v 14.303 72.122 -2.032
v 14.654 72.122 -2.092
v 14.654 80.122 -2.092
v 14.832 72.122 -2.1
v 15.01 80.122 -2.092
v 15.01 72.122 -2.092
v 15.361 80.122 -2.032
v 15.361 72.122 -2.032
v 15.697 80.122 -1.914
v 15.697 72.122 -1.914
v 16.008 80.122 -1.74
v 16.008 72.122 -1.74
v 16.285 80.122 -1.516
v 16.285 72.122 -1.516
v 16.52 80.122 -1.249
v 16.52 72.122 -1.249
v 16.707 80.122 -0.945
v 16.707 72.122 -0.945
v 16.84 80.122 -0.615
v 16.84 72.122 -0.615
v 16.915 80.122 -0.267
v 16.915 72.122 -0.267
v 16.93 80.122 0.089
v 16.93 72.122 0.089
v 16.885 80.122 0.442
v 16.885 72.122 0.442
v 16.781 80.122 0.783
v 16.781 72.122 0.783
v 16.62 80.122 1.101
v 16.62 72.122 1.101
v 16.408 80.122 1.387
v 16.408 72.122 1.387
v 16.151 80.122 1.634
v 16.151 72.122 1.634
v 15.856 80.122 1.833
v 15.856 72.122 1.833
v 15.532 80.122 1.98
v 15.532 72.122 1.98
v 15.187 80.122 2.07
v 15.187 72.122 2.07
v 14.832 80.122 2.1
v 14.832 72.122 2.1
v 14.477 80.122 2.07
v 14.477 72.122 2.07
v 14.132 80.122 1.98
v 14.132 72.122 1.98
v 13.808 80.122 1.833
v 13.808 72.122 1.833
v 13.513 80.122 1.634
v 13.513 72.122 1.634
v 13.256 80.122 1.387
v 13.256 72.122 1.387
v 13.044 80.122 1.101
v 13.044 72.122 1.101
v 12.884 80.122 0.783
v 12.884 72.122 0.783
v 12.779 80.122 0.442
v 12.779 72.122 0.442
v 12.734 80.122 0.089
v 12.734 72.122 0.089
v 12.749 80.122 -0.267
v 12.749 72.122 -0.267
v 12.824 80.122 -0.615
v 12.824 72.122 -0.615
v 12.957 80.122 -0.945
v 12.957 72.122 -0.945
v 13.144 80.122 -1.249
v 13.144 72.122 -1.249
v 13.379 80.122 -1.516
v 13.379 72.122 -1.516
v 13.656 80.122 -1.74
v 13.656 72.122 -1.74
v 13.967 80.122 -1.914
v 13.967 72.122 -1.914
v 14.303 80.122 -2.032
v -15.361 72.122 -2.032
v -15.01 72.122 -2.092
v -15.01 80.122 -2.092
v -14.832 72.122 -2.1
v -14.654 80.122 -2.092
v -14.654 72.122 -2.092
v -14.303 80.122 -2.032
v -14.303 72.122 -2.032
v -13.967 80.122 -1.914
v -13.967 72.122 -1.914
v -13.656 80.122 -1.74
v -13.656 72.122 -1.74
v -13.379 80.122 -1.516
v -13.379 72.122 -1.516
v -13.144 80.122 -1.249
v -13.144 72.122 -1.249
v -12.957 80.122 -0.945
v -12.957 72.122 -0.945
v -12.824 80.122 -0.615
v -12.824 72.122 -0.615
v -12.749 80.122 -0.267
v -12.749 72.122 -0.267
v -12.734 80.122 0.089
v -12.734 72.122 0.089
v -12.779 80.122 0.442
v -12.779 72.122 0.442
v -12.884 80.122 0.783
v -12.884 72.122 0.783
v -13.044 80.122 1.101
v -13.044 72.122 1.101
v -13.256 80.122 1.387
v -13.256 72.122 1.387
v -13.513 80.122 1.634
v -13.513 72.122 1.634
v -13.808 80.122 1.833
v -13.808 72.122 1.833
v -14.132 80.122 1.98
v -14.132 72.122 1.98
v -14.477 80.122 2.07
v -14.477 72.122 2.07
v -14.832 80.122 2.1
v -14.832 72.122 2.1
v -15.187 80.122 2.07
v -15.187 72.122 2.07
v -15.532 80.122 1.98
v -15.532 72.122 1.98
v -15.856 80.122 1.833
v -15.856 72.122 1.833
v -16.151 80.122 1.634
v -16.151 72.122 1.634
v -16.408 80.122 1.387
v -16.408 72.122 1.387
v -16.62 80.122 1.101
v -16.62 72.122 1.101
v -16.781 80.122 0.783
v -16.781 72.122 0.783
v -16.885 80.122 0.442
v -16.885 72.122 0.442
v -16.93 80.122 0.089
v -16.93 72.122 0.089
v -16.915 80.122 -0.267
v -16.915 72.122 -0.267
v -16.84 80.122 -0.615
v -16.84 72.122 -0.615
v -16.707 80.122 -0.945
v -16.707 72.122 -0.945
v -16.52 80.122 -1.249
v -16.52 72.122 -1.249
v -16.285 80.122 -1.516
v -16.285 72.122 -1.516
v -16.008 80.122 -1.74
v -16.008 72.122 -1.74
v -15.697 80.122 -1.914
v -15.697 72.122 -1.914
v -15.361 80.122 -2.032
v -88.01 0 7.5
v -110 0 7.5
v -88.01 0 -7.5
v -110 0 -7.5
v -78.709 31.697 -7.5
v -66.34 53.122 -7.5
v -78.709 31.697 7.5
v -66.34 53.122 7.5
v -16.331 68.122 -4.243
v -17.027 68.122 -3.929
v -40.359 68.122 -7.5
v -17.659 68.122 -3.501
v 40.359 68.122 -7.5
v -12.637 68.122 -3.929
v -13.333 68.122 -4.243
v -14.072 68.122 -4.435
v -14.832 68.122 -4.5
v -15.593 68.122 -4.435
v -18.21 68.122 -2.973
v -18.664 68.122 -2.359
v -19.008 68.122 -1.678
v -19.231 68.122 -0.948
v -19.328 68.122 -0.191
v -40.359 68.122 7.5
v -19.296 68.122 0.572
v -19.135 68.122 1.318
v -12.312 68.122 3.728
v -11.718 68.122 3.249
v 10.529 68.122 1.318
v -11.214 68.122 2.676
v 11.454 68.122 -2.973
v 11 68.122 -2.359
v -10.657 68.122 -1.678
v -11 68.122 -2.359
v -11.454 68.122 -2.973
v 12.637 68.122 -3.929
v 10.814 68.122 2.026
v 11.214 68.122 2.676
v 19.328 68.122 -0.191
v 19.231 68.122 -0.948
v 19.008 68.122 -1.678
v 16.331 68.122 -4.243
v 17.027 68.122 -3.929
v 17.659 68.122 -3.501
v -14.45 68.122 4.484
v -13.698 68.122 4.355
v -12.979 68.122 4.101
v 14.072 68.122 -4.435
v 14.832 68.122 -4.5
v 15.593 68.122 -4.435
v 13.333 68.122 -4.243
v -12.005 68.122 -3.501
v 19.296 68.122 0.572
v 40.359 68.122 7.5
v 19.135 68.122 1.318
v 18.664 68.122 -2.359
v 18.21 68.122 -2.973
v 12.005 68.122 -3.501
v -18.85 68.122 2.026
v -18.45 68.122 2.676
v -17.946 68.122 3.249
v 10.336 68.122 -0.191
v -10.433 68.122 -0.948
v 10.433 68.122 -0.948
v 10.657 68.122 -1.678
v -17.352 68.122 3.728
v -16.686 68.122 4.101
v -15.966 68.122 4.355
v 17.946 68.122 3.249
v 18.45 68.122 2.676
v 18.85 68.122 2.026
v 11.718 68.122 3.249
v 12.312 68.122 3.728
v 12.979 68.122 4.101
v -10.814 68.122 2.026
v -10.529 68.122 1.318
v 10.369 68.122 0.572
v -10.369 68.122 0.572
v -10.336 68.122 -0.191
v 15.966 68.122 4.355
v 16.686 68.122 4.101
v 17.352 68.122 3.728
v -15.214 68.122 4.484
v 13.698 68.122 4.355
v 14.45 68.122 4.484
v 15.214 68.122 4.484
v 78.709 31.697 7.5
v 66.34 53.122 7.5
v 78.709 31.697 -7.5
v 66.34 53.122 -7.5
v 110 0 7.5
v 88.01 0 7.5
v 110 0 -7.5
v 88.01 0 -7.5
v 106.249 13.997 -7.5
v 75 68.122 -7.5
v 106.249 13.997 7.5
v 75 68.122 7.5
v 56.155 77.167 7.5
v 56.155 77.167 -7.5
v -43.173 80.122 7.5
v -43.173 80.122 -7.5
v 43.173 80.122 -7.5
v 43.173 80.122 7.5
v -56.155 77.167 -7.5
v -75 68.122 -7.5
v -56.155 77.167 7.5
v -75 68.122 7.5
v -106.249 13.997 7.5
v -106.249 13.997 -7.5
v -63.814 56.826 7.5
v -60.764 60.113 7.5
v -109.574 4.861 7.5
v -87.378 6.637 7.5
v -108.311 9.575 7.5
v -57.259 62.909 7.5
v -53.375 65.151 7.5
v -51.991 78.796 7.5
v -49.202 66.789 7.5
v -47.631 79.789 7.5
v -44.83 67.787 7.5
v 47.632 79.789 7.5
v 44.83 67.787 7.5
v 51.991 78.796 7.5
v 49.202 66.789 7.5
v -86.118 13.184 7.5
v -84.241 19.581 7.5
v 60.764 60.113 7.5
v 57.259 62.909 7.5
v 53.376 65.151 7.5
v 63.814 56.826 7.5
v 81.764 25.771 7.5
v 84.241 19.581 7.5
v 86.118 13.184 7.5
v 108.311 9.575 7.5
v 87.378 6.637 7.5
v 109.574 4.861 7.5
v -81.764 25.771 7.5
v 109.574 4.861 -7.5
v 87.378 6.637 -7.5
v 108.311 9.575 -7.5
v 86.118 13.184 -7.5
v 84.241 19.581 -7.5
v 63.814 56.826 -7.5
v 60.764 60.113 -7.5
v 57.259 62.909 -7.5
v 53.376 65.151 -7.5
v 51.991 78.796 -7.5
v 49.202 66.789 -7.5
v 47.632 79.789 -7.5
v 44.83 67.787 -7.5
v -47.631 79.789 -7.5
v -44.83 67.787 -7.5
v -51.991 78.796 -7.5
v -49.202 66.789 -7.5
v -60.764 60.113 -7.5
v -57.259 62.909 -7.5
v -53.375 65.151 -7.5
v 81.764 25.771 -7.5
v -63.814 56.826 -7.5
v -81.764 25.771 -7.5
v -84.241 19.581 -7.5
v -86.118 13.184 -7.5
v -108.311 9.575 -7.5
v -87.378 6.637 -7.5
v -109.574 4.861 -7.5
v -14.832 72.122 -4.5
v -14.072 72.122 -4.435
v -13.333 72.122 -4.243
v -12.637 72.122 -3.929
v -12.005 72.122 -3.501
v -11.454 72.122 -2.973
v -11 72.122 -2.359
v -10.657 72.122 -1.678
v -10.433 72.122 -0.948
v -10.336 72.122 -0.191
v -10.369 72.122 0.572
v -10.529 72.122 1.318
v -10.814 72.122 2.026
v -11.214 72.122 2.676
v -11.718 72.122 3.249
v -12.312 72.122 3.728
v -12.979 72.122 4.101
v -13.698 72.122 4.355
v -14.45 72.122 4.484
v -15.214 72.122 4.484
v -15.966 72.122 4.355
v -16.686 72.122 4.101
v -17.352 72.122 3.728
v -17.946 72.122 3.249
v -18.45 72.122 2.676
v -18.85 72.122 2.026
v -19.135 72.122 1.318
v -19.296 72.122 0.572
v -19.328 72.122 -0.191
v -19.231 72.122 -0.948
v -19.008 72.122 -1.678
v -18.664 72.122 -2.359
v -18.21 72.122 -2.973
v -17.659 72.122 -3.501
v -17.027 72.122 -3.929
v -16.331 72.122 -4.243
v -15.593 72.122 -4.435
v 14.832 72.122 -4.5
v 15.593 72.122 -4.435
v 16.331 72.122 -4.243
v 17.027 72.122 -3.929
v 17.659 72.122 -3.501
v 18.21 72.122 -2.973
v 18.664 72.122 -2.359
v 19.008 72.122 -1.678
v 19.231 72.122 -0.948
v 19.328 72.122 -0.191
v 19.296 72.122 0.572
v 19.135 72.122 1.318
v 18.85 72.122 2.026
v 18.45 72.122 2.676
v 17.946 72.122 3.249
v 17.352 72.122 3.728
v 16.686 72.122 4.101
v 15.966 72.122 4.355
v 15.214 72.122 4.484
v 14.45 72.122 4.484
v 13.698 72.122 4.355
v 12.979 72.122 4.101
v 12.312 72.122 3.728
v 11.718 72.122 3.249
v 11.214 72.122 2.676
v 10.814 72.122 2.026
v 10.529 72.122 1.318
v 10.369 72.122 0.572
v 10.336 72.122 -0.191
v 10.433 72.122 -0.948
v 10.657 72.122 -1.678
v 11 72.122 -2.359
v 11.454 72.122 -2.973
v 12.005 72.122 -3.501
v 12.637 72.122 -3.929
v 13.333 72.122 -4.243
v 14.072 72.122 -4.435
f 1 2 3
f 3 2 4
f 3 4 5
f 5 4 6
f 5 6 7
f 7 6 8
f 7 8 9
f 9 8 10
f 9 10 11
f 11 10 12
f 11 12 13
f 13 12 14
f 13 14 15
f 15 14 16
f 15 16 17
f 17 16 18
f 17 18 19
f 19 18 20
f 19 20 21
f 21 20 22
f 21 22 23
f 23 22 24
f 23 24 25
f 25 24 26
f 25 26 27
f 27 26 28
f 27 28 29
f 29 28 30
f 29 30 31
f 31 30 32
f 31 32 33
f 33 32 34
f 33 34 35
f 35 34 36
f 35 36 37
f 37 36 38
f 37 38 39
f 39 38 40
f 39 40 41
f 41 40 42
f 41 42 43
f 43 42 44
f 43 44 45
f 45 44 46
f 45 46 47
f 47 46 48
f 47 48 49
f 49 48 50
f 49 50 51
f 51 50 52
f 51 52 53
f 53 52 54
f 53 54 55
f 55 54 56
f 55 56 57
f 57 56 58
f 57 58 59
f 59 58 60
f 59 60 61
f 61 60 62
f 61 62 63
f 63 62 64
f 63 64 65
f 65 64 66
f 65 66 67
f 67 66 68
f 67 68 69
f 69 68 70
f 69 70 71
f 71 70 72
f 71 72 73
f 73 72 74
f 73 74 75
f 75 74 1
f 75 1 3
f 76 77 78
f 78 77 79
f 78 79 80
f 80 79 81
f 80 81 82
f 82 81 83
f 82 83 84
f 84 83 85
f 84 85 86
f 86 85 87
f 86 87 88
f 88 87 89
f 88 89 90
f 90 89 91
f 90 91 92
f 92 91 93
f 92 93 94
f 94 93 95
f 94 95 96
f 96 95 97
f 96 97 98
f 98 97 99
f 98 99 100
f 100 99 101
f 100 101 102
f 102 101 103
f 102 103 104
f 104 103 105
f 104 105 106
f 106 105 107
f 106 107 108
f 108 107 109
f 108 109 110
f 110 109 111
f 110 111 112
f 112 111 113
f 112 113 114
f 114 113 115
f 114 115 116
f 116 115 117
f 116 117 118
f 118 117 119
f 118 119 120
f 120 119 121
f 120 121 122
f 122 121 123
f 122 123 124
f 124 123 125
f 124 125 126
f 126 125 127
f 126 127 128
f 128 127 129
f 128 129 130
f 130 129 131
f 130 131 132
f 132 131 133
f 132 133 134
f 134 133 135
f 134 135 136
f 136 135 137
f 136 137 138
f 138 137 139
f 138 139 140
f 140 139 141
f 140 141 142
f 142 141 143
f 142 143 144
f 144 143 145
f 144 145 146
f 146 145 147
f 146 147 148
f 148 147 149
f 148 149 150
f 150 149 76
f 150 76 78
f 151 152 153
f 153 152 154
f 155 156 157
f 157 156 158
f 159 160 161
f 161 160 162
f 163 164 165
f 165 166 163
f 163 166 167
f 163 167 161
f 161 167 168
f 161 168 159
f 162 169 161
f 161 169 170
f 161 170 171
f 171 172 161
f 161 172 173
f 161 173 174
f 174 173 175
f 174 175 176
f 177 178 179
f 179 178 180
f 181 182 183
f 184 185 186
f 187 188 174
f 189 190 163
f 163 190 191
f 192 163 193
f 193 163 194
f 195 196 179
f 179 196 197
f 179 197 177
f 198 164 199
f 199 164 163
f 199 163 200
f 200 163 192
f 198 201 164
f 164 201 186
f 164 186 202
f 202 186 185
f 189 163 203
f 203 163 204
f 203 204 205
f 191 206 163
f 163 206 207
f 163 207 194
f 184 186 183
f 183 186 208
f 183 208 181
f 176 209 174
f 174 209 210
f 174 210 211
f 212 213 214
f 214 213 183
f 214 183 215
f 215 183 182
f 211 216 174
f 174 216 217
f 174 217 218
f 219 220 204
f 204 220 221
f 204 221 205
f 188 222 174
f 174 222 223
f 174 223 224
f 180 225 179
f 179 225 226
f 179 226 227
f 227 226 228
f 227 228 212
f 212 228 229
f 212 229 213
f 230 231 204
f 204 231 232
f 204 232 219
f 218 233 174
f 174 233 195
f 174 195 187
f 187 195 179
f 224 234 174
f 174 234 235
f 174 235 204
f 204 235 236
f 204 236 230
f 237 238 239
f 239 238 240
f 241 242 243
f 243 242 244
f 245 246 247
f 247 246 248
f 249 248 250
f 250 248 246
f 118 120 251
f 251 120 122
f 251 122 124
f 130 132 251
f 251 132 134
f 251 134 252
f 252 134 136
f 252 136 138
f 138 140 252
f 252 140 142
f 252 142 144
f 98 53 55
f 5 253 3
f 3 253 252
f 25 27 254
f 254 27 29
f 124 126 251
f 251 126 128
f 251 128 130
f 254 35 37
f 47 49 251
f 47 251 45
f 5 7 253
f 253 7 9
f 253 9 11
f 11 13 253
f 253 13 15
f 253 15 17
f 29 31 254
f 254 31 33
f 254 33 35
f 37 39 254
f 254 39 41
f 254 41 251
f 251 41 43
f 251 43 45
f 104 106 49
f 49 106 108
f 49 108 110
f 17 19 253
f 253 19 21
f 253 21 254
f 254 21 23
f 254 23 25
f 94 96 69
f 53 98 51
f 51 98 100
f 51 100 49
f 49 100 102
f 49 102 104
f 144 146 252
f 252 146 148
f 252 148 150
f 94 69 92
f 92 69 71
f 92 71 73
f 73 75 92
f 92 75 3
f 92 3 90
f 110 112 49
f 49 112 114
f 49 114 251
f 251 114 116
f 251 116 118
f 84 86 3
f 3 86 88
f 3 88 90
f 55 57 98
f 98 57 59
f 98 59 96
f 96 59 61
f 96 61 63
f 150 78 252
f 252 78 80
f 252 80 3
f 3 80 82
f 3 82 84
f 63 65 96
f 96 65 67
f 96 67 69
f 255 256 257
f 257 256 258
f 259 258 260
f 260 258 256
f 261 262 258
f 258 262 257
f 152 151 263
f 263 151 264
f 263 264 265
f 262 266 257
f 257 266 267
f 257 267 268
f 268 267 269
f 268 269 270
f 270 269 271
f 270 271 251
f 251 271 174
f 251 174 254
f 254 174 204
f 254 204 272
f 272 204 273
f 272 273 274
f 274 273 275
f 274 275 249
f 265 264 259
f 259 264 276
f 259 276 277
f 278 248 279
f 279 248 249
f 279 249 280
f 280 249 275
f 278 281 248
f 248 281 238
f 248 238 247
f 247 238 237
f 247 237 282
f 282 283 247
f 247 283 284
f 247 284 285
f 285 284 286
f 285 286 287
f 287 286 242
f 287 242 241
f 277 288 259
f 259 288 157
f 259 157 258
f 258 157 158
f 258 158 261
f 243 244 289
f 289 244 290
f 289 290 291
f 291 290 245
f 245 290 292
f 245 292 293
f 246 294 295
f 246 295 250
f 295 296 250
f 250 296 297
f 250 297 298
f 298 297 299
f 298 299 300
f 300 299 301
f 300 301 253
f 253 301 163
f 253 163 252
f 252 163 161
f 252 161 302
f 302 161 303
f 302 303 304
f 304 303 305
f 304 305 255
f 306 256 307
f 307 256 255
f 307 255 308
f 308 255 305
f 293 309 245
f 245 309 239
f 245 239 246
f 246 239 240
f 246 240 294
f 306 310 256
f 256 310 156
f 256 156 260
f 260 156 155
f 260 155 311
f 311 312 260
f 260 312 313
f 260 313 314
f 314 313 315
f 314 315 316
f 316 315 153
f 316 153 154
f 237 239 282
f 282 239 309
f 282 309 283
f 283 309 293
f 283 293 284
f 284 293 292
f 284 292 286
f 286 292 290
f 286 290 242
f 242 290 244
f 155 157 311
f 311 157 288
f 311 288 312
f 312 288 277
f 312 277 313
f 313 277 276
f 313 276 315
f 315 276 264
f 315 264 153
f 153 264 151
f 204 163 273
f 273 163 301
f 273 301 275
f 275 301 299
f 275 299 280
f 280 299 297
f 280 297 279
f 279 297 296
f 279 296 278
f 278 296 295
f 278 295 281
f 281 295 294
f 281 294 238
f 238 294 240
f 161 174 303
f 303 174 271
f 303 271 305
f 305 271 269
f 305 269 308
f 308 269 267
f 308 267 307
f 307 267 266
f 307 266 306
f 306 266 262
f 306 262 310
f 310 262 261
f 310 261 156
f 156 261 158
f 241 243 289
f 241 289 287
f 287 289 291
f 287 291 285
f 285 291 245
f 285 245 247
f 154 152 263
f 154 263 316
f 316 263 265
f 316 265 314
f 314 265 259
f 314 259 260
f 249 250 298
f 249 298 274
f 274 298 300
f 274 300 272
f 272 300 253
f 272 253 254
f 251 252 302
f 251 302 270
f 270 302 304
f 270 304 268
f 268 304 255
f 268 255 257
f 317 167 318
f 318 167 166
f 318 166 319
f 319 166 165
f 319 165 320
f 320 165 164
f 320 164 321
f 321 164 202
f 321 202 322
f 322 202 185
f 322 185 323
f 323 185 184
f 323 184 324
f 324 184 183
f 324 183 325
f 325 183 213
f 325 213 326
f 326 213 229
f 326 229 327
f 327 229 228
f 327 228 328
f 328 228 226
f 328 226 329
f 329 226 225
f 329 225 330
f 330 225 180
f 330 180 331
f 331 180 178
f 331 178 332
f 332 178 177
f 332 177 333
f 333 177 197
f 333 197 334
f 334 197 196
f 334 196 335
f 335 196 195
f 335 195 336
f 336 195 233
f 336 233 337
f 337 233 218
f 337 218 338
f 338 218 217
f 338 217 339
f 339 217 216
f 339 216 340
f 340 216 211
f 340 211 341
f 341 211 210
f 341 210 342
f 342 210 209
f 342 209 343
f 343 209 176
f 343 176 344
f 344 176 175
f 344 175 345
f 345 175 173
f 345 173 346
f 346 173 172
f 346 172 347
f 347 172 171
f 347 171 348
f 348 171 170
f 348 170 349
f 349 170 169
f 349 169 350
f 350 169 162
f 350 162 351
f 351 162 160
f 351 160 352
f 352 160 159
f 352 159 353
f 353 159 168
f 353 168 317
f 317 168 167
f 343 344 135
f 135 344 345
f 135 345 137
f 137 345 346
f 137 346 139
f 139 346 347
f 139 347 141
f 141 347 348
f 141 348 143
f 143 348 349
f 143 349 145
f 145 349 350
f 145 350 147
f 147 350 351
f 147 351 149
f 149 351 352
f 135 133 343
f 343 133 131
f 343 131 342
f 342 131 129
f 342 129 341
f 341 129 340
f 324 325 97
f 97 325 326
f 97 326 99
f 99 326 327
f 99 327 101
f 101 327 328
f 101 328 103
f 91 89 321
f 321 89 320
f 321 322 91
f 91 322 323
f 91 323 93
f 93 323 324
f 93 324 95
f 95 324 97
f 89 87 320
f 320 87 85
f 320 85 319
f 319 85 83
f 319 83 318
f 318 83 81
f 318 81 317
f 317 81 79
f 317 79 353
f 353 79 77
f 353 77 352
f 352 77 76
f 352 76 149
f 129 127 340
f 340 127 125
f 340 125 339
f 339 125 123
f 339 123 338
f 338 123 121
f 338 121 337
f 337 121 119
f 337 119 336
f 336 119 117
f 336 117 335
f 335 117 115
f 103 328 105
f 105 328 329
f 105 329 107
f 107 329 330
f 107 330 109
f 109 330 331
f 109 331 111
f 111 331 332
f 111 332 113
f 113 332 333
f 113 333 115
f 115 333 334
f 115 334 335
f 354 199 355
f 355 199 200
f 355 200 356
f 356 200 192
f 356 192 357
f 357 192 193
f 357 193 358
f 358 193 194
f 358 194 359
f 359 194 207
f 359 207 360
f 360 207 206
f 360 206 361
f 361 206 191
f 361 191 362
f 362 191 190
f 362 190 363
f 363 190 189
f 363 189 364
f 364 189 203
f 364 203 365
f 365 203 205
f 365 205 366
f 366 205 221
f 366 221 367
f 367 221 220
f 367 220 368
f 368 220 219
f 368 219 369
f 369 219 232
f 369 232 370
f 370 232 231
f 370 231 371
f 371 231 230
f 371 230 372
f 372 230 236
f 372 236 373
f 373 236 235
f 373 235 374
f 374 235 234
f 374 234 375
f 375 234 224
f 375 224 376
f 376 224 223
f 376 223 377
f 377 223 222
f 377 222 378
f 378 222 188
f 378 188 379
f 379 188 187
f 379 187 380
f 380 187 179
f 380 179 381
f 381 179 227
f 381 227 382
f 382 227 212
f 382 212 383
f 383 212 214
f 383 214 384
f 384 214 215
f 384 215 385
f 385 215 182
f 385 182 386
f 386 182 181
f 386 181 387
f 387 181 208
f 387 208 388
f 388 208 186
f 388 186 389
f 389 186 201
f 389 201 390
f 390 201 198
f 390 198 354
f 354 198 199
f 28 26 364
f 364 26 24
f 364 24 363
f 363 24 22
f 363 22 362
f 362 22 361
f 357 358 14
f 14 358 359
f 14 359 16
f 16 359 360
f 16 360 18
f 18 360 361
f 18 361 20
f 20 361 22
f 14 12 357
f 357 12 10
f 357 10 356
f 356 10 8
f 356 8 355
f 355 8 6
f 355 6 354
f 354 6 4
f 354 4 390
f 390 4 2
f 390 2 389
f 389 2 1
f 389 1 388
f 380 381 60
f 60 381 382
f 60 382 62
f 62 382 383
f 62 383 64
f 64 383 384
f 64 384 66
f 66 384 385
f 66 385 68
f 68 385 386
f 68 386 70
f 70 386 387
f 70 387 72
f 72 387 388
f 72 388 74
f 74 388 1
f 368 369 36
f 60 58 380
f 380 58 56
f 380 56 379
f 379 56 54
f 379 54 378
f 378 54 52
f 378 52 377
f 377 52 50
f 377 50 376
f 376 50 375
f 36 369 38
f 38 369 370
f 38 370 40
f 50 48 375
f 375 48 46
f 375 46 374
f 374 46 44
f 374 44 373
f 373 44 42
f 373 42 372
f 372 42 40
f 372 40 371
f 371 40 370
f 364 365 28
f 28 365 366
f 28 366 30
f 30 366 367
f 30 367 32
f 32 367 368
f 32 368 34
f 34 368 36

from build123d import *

# Parameters (mm, degrees)
BOSS_EXTRUDE1_DEPTH = 7.5
CUT_EXTRUDE1_START  = 80.121778
SKETCH3_R           = 2.1
CUT_EXTRUDE1_DEPTH  = 12
FILLET1_R           = 30
FILLET1_R_2         = 70
FILLET2_R           = 30
FILLET2_R_2         = 28
CUT_EXTRUDE2_START  = 72.121778
SKETCH3_4_R         = 4.5
SKETCH3_4_R_2       = 2.1
CUT_EXTRUDE2_DEPTH  = 6


with BuildPart() as part:
    # Sketch2 → Boss-Extrude1 (new, symmetric)
    with BuildSketch(Plane.XY):
        Polygon((-50, 80.121778265), (-75, 68.121778265), (-110, 7.5), (-110, 0), (-88.009618943, 0), (-88.009618943, 15.588457268), (-57.679491924, 68.121778265), (57.679491924, 68.121778265), (88.009618943, 15.588457268), (88.009618943, 0), (110, 0), (110, 7.5), (75, 68.121778265), (50, 80.121778265), align=None)
    extrude(amount=BOSS_EXTRUDE1_DEPTH, both=True)

    # Sketch3 → Cut-Extrude1 (cut)
    with BuildSketch(Plane(origin=(0, 0, 0), x_dir=(1, 0, 0), z_dir=(0, 1, 0)).offset(CUT_EXTRUDE1_START)):
        with Locations(Location((-14.832079928, 0, 0), (0, 0, 270))):
            Circle(SKETCH3_R)
        with Locations(Location((14.832079928, 0, 0), (0, 0, 270))):
            Circle(SKETCH3_R)
    extrude(amount=-CUT_EXTRUDE1_DEPTH, mode=Mode.SUBTRACT)

    # Fillet1
    # the kernel refuses this fillet: 70, 30 mm, written as the material it adds along each edge
    with BuildSketch(Plane(origin=(-57.679491924, 68.121778265, -7.5), x_dir=(-0.500000000000001, -0.8660254037844382, 0), z_dir=(0, 0, 1)), Plane(origin=(57.679491924, 68.121778265, -7.5), x_dir=(-1, 0, 0), z_dir=(0, 0, 1))) as fillet1_piece_1:
        with BuildLine():
            CenterArc((FILLET1_R * 0.57735026919, FILLET1_R), FILLET1_R, 210, 60)
            Line((-FILLET1_R * 0.288675134595, FILLET1_R * 0.5), (-FILLET1_R * 0.305995642671, FILLET1_R * 0.49))
            Line((-FILLET1_R * 0.305995642671, FILLET1_R * 0.49), (-FILLET1_R * 0.0115470053838, -FILLET1_R * 0.02))
            Line((-FILLET1_R * 0.0115470053838, -FILLET1_R * 0.02), (FILLET1_R * 0.57735026919, -FILLET1_R * 0.02))
            Line((FILLET1_R * 0.57735026919, -FILLET1_R * 0.02), (FILLET1_R * 0.57735026919, 0))
        make_face()
    extrude(amount=15)
    with BuildSketch(Plane(origin=(-88.009618943, 15.588457268, -7.5), x_dir=(0, -1, 0), z_dir=(0, 0, 1))) as fillet1_piece_2:
        with BuildLine():
            CenterArc((18.891495711, 69.922027552), FILLET1_R_2, 240, 27.295421975)
            Line((-16.108504289, 9.300249288), (-16.808504289, 8.087813722))
            Line((-16.808504289, 8.087813722), (-0.7, -1.212435565))
            Line((-0.7, -1.212435565), (0, -1.4))
            ThreePointArc((0, -1.4), (7.794228634, -1.4), (15.522396499, -1.398440551))
            Line((15.522396499, -1.398440551), (15.588457268, 0))
        make_face()
    extrude(amount=15)
    with BuildSketch(Plane(origin=(88.009618943, 15.588457268, 7.5), x_dir=(-0.5000000000000018, 0.8660254037844377, 0), z_dir=(0, 0, -1))) as fillet1_piece_3:
        with BuildLine():
            CenterArc((18.600498575, -70), FILLET1_R_2, 90, 27.295421975)
            Line((-13.5, -7.794228634), (-14.142009972, -6.550113207))
            ThreePointArc((-14.142009972, -6.550113207), (-7.45, -2.684678752), (-0.7, 1.212435565))
            Line((-0.7, 1.212435565), (0, 1.4))
            Line((0, 1.4), (18.600498575, 1.4))
            Line((18.600498575, 1.4), (18.600498575, 0))
        make_face()
    extrude(amount=15)

    # Fillet2
    # the kernel refuses this fillet: 30, 28 mm, written as the material it takes off along each edge
    with BuildSketch(Plane(origin=(-50, 80.121778265, -24.567807798), x_dir=(1, 0, 0), z_dir=(0, 0, 1)), Plane(origin=(50, 80.121778265, -24.567807798), x_dir=(0.9015230574682733, -0.43273106758477164, 0), z_dir=(0, 0, 1))) as fillet2_piece_1:
        with BuildLine():
            CenterArc((FILLET2_R * 0.227570770644, -FILLET2_R), FILLET2_R, 90, 25.641005824)
            Line((-FILLET2_R * 0.205160296941, -FILLET2_R * 0.0984769425317), (0, 0))
            Line((0, 0), (FILLET2_R * 0.227570770644, 0))
        make_face()
    extrude(amount=49.135615597, mode=Mode.SUBTRACT)
    with BuildSketch(Plane(origin=(-110, 7.5, -26.25644347), x_dir=(0.5000000000000017, 0.8660254037844376, 0), z_dir=(0, 0, 1)), Plane(origin=(110, 7.5, -26.25644347), x_dir=(0, -1, 0), z_dir=(0, 0, 1))) as fillet2_piece_2:
        with BuildLine():
            CenterArc((FILLET2_R_2 * 0.267949192431, -FILLET2_R_2), FILLET2_R_2, 90, 30)
            Line((-FILLET2_R_2 * 0.232050807569, -FILLET2_R_2 * 0.133974596216), (0, 0))
            Line((0, 0), (FILLET2_R_2 * 0.267949192431, 0))
        make_face()
    extrude(amount=52.51288694, mode=Mode.SUBTRACT)

    # Sketch3<4> → Cut-Extrude2 (cut)
    # profile 1 of 2: a face of its own
    with BuildSketch(Plane(origin=(0, 0, 0), x_dir=(1, 0, 0), z_dir=(0, 1, 0)).offset(CUT_EXTRUDE2_START)):
        with Locations(Location((-14.832079928, 0, 0), (0, 0, 90))):
            Circle(SKETCH3_4_R)
        with Locations(Location((-14.832079928, 0, 0), (0, 0, 270))):
            Circle(SKETCH3_4_R_2, mode=Mode.SUBTRACT)
    # profile 2 of 2: a face of its own
    with BuildSketch(Plane(origin=(0, 0, 0), x_dir=(1, 0, 0), z_dir=(0, 1, 0)).offset(CUT_EXTRUDE2_START)):
        with Locations(Location((14.832079928, 0, 0), (0, 0, 90))):
            Circle(SKETCH3_4_R)
        with Locations(Location((14.832079928, 0, 0), (0, 0, 270))):
            Circle(SKETCH3_4_R_2, mode=Mode.SUBTRACT)
    extrude(amount=-CUT_EXTRUDE2_DEPTH, mode=Mode.SUBTRACT)


solid = part.part
